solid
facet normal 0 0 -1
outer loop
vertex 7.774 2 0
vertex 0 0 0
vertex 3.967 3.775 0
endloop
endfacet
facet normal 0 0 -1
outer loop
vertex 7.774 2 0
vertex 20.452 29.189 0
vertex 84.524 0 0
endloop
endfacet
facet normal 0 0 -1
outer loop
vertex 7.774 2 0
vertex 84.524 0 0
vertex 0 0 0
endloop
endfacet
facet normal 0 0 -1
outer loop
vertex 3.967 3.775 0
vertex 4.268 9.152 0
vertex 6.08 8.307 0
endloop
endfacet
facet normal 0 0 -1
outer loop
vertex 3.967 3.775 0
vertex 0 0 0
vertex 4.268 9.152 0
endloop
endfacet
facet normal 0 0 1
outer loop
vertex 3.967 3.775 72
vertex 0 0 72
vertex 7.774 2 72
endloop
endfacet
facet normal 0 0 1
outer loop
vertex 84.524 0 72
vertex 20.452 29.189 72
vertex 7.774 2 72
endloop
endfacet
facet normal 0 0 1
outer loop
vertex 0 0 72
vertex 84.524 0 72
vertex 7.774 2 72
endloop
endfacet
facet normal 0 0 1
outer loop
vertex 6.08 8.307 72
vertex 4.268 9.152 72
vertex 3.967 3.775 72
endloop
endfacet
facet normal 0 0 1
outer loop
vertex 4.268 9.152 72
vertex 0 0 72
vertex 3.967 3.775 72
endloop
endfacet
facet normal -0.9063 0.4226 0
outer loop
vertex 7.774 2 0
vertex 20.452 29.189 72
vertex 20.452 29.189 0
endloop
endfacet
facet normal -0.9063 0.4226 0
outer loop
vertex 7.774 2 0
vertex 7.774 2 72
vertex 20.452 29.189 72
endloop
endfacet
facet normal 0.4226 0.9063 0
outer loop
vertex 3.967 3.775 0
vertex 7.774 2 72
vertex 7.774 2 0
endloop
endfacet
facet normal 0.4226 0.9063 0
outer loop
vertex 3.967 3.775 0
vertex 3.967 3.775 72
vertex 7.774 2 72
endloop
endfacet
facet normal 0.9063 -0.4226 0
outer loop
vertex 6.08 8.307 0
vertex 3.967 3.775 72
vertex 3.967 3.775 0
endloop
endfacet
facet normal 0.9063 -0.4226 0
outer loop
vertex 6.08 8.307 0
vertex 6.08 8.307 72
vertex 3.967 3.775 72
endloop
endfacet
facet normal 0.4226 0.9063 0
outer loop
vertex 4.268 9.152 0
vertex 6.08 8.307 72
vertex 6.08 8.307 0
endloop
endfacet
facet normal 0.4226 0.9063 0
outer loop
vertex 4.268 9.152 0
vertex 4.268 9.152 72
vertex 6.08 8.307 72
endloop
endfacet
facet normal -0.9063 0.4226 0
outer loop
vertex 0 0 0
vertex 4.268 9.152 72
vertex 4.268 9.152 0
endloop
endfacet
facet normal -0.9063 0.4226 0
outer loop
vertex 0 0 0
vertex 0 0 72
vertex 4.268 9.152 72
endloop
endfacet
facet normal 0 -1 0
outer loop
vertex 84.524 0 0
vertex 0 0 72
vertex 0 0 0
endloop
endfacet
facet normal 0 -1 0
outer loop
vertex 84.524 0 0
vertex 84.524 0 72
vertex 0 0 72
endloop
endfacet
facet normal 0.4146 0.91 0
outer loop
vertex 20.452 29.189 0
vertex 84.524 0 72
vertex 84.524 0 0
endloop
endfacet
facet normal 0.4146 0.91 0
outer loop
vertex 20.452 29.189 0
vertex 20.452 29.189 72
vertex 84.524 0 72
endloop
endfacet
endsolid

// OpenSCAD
// 支架横向宽度
stand_width = 72;
// CD盒子重心到边缘的长度参考
reference_length = 200;
// 后靠斜面（碟盒贴靠面）与水平面的夹角
support_angle = 65; // [10:1:90]
// 后靠斜面长度：从后槽底 B 到顶部，沿碟盒贴靠面测量
backrest_length = 30;
// 盒槽的法向净宽
slot_width = 4.2;
// 从槽底沿支撑方向测量的前挡有效高度
lip_height = 5;
// 壁厚，沿壁的法向测量
thickness = 2;

/* [Hidden] */
// 角度变化时重新计算底边，而不是保持固定长度。
base_depth = reference_length * cos(support_angle);
// 在二维截面中，x 为前后方向，第二坐标为使用时的高度。
u = [cos(support_angle), sin(support_angle)];
n = [-sin(support_angle), cos(support_angle)];

// 后槽底 B 位于 thickness。
// B 的 x 坐标使前挡外侧的延长线恰好经过前端 [0,0]。
B = [
    (slot_width + thickness + thickness * cos(support_angle))
        / sin(support_angle),
    thickness
];
A = B + slot_width * n;                         // 前槽底
lip_inner_top = A + lip_height * u;
lip_outer_top = lip_inner_top + thickness * n;
rear_toe = [base_depth, 0];

// 后靠斜面使用独立长度；后侧支撑边随顶点位置自动变化。
support_top = B + backrest_length * u;

module main() {
    linear_extrude(height = stand_width, convexity = 4)
        polygon([
            [0, 0],
            rear_toe,
            support_top,
            B,
            A,
            lip_inner_top,
            lip_outer_top
        ]);
}

main();
